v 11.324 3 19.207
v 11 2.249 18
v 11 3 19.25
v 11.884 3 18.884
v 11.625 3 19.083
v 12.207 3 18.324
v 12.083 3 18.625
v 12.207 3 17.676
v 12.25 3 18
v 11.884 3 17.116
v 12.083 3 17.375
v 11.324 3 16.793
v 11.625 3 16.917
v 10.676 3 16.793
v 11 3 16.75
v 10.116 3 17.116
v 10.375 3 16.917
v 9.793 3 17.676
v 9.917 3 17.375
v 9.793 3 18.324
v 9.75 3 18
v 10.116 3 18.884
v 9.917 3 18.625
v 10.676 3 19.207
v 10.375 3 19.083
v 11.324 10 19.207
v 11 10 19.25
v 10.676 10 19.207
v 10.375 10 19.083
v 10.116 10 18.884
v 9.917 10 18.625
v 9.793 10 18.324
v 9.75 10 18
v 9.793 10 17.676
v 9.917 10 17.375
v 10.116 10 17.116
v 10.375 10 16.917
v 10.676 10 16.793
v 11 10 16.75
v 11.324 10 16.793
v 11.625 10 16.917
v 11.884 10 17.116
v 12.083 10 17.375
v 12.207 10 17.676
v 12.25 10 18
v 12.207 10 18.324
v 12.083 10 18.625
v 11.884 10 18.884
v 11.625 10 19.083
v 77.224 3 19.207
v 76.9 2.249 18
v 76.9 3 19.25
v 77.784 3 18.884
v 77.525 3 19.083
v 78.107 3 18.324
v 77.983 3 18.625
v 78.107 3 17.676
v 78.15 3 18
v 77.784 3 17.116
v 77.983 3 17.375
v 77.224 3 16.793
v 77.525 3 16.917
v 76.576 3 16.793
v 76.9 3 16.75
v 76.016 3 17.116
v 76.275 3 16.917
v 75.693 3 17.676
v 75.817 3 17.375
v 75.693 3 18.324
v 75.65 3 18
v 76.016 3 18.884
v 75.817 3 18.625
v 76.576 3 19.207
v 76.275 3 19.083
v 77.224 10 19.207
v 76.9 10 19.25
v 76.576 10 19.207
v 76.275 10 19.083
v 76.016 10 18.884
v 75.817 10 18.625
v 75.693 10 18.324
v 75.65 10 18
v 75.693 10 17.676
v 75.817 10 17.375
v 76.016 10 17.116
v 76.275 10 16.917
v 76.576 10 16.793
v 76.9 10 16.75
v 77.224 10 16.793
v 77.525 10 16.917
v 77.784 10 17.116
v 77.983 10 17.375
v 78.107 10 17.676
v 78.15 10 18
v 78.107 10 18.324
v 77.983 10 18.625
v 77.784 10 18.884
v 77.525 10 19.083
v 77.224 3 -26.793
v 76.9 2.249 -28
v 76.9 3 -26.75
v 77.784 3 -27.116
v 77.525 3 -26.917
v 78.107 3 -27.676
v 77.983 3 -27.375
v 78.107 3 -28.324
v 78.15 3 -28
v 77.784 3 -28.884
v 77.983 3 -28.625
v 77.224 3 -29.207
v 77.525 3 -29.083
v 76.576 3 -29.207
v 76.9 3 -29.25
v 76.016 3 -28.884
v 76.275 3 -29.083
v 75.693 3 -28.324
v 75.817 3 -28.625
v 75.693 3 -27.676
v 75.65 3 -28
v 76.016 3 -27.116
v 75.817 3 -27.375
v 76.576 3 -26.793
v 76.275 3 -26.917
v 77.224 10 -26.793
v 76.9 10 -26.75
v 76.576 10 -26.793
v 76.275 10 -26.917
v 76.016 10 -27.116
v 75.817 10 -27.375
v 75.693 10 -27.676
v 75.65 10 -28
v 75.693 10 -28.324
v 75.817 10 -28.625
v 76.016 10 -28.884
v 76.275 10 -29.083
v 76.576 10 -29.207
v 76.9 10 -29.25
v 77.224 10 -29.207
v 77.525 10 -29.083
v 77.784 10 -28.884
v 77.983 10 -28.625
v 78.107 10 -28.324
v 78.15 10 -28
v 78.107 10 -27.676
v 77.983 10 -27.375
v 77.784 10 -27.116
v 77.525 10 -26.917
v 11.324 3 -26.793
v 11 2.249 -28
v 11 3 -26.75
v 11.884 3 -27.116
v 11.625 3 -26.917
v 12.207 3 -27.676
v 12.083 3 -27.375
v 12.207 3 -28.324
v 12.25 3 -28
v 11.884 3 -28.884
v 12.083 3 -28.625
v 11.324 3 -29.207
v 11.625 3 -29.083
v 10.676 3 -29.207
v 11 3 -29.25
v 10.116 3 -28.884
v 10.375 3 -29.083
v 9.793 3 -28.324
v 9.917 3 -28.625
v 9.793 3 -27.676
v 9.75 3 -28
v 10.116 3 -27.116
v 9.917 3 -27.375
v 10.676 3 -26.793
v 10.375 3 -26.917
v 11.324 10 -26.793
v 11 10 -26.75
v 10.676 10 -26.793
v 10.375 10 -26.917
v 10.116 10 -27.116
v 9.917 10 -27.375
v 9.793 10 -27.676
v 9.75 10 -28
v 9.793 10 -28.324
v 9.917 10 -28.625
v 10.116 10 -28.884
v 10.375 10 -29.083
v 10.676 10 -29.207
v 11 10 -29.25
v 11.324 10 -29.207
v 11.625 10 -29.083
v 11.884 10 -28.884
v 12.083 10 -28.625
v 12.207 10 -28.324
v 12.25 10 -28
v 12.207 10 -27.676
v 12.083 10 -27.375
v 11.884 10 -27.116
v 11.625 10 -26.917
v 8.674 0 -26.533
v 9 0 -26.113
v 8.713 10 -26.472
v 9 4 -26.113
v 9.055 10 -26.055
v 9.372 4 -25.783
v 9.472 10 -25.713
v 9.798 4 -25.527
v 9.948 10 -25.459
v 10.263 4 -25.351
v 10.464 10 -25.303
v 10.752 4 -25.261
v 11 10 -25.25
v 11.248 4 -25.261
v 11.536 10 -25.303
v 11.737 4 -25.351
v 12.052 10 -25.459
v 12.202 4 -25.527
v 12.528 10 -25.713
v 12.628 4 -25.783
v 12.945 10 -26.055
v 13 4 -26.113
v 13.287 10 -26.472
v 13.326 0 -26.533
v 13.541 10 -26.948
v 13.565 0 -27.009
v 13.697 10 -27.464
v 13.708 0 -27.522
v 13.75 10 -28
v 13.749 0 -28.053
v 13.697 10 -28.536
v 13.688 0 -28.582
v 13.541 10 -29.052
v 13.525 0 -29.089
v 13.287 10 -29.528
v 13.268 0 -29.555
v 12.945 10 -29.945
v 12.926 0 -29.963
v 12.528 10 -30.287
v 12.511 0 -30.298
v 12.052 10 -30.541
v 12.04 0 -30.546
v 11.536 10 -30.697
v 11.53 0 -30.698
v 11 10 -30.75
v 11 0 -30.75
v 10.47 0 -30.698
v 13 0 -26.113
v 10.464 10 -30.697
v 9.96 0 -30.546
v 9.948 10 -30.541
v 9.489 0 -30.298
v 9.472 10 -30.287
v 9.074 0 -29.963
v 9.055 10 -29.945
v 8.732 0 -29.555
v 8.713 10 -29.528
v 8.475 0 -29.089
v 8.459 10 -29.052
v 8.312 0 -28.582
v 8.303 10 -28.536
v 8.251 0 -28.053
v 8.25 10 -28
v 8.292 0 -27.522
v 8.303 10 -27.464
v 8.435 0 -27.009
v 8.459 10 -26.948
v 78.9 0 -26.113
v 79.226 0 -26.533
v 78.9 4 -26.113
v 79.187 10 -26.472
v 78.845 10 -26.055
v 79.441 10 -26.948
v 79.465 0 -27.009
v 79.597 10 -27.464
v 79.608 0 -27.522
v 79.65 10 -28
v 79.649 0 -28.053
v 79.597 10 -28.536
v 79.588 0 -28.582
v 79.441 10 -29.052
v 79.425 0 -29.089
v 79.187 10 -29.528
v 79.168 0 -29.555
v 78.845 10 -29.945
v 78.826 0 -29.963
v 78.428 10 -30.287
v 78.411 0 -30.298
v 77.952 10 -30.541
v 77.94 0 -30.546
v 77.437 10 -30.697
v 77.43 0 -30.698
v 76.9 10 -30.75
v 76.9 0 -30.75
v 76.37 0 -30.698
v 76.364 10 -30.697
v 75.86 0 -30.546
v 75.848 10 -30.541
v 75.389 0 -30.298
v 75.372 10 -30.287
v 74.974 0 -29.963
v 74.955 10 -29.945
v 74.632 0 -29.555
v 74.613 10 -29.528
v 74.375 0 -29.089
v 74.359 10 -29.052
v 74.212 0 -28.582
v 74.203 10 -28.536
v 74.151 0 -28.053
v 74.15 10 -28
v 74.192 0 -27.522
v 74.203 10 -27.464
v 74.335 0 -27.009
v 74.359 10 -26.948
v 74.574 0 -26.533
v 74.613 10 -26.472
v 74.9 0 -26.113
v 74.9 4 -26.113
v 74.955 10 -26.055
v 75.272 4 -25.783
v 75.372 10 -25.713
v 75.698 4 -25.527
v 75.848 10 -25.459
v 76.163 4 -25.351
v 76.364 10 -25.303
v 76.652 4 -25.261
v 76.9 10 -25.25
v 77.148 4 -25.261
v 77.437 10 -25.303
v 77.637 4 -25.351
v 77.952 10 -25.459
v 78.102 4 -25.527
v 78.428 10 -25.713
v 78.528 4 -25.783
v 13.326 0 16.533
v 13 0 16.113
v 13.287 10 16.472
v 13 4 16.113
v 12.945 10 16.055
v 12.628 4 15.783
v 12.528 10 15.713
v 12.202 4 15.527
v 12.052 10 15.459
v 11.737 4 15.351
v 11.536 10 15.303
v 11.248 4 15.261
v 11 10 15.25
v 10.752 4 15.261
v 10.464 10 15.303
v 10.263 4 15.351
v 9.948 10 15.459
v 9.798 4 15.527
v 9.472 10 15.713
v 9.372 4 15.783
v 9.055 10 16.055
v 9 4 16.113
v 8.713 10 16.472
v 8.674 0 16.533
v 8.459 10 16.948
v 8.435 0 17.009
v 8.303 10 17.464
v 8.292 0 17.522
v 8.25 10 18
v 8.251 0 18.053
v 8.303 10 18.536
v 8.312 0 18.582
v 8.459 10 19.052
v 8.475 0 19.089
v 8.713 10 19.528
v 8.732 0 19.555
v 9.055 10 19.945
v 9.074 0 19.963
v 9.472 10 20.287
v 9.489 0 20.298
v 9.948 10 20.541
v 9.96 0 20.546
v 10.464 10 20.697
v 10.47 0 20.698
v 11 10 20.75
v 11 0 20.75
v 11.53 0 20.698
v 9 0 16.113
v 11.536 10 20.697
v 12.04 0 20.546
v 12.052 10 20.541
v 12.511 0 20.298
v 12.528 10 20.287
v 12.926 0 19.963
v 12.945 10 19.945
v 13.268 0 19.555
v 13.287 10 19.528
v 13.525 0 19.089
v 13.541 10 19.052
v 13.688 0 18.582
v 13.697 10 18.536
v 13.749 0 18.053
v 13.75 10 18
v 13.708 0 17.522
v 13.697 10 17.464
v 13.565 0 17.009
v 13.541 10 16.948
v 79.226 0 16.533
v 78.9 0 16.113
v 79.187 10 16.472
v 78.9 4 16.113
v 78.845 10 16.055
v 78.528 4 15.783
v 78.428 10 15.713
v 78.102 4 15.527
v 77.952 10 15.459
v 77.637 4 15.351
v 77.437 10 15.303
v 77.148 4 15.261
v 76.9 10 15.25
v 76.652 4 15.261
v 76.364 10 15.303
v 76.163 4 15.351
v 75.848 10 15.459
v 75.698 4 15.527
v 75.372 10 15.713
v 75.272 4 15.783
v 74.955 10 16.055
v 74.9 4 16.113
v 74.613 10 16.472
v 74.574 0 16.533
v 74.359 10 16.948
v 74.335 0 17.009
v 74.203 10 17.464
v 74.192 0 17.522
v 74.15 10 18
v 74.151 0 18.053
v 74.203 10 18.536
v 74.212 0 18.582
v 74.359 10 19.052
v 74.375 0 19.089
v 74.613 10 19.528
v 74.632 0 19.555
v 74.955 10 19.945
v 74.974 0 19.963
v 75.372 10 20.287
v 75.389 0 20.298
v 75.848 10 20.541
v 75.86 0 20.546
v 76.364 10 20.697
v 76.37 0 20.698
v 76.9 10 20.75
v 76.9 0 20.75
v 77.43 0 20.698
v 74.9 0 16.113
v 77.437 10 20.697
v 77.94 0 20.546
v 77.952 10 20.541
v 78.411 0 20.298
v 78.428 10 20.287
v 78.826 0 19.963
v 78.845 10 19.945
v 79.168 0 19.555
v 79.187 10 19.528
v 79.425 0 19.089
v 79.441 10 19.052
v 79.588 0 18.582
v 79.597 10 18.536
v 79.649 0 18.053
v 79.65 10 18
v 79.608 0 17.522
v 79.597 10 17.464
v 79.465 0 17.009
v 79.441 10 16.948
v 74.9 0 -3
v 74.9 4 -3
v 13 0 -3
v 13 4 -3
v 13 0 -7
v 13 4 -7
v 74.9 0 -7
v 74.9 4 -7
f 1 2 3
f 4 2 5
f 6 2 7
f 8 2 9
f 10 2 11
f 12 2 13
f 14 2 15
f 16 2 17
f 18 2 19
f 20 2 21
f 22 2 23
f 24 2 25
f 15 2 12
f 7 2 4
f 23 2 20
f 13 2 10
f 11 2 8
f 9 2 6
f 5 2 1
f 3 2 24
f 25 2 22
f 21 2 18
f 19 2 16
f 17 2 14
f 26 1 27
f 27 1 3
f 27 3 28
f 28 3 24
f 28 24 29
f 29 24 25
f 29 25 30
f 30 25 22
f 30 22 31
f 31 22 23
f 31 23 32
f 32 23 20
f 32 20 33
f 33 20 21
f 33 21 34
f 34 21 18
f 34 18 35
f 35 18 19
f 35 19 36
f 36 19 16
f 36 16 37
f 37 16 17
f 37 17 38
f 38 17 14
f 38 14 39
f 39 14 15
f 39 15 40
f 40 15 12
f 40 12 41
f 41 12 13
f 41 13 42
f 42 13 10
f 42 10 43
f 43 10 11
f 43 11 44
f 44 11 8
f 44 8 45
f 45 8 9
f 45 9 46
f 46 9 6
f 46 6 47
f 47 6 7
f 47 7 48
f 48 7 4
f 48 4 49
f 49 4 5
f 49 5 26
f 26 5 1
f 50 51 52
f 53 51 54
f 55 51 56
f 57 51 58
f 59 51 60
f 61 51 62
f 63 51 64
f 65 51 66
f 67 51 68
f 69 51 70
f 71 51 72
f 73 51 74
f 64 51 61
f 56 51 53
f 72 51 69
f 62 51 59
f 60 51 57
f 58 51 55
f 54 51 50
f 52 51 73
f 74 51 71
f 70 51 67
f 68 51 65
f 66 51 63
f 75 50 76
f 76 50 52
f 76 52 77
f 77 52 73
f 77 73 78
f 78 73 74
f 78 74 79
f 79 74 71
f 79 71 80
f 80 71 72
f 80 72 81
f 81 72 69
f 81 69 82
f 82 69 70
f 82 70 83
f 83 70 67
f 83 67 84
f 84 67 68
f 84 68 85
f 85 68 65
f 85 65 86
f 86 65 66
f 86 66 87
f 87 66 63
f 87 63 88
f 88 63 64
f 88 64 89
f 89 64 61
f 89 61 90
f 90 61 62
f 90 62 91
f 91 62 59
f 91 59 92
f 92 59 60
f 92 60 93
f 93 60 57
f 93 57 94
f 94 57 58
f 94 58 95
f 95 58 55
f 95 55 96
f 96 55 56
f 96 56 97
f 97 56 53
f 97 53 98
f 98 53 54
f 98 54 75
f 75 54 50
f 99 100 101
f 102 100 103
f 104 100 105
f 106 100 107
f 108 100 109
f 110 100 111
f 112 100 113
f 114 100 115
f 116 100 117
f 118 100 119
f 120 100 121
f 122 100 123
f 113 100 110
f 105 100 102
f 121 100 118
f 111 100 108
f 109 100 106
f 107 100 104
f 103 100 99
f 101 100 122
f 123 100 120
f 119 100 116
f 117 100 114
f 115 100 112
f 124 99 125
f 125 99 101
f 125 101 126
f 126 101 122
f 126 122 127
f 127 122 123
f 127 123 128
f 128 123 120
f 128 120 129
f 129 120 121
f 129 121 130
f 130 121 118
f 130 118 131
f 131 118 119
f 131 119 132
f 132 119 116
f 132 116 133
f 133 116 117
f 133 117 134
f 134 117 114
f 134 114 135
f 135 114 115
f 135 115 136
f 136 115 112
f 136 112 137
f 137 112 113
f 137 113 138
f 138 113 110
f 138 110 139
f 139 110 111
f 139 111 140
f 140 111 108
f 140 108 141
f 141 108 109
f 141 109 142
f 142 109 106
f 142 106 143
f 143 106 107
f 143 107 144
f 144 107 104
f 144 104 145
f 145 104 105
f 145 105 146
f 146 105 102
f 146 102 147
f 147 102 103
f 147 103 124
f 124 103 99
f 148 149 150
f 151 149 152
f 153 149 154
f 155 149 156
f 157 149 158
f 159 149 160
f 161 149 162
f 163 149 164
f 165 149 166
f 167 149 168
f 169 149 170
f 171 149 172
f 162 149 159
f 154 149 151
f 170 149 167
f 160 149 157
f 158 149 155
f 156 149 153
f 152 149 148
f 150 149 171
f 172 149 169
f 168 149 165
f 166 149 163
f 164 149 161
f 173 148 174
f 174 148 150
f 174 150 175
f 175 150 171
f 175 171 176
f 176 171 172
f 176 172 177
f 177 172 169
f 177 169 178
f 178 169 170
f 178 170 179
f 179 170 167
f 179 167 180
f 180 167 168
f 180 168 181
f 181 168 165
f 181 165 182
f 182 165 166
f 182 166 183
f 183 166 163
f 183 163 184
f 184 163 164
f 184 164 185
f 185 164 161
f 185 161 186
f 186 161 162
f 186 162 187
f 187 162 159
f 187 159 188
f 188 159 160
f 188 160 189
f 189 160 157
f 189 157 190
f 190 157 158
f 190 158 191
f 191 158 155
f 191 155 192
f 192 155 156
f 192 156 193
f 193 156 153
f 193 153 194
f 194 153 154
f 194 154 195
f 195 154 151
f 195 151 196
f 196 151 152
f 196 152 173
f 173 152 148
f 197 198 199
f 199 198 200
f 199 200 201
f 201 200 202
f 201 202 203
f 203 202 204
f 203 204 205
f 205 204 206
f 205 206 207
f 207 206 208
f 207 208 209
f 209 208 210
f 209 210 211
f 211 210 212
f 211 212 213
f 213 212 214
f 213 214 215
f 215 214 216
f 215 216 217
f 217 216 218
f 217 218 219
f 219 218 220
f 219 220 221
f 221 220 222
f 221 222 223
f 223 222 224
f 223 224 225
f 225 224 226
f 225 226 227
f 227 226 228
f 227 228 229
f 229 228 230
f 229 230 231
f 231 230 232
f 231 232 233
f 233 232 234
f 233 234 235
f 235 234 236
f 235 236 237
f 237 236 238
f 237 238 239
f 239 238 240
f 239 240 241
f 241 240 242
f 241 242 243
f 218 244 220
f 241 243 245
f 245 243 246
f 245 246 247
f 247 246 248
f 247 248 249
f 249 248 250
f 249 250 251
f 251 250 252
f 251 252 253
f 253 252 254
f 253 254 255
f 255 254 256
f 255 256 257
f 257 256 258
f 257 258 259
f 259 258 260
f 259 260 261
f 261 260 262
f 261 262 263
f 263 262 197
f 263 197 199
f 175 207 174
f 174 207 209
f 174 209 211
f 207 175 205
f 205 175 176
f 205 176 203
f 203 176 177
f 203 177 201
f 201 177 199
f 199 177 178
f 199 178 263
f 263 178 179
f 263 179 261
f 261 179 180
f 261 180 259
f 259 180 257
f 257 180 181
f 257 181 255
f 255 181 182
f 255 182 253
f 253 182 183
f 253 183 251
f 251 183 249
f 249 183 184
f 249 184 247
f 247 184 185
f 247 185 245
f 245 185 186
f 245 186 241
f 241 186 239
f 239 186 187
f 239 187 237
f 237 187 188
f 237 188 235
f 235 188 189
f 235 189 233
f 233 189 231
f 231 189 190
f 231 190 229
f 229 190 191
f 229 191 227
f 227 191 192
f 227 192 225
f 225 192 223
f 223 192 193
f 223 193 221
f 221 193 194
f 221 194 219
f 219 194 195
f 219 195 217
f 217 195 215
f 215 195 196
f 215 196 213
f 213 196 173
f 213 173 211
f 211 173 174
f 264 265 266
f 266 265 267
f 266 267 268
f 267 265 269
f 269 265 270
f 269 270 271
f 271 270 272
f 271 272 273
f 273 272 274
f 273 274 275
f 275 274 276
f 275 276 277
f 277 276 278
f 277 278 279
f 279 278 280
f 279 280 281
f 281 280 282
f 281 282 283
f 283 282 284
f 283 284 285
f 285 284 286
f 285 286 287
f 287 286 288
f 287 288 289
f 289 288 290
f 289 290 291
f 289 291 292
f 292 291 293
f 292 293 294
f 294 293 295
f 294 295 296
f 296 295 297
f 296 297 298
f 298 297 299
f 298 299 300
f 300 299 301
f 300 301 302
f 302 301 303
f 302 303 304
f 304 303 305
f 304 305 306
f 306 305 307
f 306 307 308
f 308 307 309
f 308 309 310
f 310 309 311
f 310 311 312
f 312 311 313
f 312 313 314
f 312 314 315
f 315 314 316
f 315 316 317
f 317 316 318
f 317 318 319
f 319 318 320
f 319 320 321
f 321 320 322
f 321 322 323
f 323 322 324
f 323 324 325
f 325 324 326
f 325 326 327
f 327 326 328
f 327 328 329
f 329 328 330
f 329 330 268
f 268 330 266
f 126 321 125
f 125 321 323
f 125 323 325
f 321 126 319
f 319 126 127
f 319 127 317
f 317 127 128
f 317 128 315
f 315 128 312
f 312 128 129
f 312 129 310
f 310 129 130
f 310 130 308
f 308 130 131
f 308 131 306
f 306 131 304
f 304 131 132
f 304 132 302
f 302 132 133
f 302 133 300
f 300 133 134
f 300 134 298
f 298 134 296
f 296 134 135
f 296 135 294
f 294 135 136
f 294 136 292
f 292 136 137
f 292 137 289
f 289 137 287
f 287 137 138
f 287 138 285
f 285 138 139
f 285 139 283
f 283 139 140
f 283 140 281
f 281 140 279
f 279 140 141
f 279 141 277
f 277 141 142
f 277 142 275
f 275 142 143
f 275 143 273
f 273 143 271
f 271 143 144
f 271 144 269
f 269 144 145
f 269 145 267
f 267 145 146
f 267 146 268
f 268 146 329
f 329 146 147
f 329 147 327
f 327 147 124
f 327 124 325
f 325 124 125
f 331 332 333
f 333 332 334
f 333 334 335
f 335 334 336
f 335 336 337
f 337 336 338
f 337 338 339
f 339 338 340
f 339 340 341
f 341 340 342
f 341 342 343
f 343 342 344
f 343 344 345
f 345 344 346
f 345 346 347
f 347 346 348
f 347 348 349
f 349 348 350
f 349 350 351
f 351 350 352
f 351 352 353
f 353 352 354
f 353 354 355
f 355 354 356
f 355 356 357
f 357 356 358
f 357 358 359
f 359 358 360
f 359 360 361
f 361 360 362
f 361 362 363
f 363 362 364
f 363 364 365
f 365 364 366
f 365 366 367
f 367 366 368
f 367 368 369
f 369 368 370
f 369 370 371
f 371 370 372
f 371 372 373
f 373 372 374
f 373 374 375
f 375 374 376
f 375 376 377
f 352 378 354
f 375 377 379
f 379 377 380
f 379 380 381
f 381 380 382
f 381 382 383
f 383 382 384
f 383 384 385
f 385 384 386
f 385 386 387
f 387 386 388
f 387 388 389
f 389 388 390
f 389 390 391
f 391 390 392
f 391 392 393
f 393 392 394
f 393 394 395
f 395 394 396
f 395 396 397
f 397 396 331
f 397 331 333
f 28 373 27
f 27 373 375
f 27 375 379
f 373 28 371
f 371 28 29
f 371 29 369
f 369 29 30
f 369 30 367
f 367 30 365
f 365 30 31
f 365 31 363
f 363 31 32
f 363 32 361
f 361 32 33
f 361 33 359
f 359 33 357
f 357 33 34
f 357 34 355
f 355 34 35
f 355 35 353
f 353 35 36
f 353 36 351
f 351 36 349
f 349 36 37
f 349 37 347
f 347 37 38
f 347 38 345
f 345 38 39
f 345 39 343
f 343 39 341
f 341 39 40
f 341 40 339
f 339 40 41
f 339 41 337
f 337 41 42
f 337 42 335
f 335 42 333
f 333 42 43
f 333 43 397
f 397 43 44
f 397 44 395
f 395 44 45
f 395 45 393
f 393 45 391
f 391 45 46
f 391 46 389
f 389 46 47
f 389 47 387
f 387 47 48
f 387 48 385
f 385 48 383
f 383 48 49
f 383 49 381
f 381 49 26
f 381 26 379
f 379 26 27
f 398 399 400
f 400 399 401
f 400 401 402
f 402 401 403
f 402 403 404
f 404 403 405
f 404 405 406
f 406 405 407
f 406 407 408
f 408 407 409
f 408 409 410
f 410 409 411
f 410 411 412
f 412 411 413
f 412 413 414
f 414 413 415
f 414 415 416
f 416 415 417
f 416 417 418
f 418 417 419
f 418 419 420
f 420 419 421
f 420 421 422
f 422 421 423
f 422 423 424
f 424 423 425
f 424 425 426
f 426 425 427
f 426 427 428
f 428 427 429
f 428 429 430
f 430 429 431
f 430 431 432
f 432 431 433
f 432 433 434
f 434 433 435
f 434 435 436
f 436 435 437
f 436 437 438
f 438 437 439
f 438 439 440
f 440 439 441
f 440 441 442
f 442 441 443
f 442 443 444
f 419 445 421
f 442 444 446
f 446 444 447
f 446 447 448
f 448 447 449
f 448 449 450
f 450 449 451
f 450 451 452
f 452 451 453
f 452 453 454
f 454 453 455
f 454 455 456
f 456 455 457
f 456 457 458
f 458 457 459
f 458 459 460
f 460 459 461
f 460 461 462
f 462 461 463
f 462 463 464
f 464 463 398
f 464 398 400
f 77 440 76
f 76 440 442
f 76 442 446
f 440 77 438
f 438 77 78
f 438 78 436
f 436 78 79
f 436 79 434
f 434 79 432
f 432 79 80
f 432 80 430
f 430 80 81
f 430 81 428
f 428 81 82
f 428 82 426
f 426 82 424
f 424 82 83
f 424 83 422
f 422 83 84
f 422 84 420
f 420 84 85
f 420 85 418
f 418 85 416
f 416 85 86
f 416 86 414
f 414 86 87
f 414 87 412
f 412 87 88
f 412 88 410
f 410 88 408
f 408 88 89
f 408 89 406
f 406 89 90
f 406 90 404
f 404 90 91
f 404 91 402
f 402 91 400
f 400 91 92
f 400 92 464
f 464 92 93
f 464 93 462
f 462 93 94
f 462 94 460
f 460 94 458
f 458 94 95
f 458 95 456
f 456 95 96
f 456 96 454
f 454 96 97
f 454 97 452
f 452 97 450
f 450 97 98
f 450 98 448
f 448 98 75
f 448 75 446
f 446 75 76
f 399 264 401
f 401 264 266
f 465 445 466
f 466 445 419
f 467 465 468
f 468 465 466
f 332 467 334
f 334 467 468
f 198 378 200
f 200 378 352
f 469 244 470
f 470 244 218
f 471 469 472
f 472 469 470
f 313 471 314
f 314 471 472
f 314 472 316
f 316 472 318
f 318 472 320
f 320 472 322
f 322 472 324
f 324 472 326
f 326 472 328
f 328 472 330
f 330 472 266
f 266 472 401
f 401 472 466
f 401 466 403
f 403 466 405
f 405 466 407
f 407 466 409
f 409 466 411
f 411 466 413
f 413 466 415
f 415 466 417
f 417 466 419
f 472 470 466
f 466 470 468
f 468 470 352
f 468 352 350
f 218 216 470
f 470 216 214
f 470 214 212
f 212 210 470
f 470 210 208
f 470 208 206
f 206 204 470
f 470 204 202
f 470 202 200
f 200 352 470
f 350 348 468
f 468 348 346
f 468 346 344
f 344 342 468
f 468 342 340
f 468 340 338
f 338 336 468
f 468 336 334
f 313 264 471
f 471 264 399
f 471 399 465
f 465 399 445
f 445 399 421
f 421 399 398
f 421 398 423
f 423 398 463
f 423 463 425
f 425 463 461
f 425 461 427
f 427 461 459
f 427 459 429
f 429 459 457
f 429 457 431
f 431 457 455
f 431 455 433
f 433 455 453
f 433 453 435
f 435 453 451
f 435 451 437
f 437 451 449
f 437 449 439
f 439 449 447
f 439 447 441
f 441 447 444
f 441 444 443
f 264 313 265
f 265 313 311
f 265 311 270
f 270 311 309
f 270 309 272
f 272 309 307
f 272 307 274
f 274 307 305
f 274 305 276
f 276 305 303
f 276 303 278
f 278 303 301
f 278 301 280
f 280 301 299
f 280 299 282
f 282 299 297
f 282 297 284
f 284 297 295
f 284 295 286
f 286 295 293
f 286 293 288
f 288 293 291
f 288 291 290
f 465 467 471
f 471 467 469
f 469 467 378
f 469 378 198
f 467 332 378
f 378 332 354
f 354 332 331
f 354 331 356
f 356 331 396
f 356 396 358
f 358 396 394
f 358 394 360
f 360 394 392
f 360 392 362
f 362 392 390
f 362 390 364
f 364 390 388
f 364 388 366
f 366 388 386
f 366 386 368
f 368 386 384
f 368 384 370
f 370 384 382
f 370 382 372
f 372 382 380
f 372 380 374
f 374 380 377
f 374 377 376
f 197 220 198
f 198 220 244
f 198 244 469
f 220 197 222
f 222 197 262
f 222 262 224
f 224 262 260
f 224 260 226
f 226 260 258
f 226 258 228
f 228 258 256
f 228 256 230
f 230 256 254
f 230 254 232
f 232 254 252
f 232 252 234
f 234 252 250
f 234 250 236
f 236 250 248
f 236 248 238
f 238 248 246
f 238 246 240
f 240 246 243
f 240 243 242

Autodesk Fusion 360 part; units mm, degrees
sketch "Schizzo9" plane through (0, 0, 0) normal (0, 1, 0) x (1, 0, 0)
  line L0 (11, 28) -> (76.9, 28)
  line L1 (76.9, 28) -> (76.9, -18)
  line L2 (76.9, -18) -> (11, -18)
  line L3 (11, -18) -> (11, 28)
  circle A0 centre (11, 28) radius 2.75
  circle A1 centre (76.9, 28) radius 2.75
  circle A2 centre (11, -18) radius 2.75
  circle A3 centre (76.9, -18) radius 2.75
  line L4 (11, 28) -> (9, 28)
  line L5 (11, 28) -> (13, 28)
  line L6 (9, 28) -> (9, -18)
  line L7 (13, 28) -> (13, -18)
  line L8 (76.9, 28) -> (74.9, 28)
  line L9 (76.9, 28) -> (78.9, 28)
  line L10 (78.9, 28) -> (78.9, -18)
  line L11 (74.9, 28) -> (74.9, -18)
  line L12 (78.9, 5) -> (78.9, 7)
  line L13 (78.9, 5) -> (78.9, 3)
  line L14 (78.9, 7) -> (9, 7)
  line L15 (78.9, 3) -> (9, 3)
  dimension "d99" = 65.9
  dimension "d100" = 46
  dimension "d101" = 5.5
  dimension "d102" = 5.5
  dimension "d103" = 5.5
  dimension "d104" = 5.5
  dimension "d105" = 2
  dimension "d106" = 2
  dimension "d107" = 2
  dimension "d108" = 2
  dimension "d109" = 2
  dimension "d110" = 2
extrude "Estrusione16" add sketch "Schizzo9" along normal blind 4 contours L3 A0 L7 L14 | L3 A0 L6 L14 | L3 L7 L14 L15 | L3 L6 L14 L15 | L7 L11 L14 L15 | L3 A2 L7 L15 | L3 A2 L6 L15 | L1 A1 L11 L14 | L1 L11 L14 L15 | L1 A1 L10 L14 | L1 A3 L11 L15 | L1 L10 L12 L13 L14 L15 | L1 A3 L10 L15
extrude "Estrusione17" add sketch "Schizzo9" along normal blind 10 contours L0 A0 L4 L5 L6 | L0 L3 A0 L5 L7 | L3 A0 L4 L6 | L0 A0 L7 | L0 A1 L8 L9 L10 | L0 A1 L11 | L0 L1 A1 L8 L11 | L2 L3 A2 L7 | L2 L3 A2 | L1 A1 L9 L10 | L2 A2 L7 | L2 A3 L11 | L1 L2 A3 L11 | L1 L2 A3
hole "Foratura9" at (11, 10, -28) direction (0, -1, 0) diameter 2.5 depth 7 tip angle 118
hole "Foratura10" at (76.9, 10, -28) direction (0, -1, 0) diameter 2.5 depth 7 tip angle 118
hole "Foratura11" at (76.9, 10, 18) direction (0, -1, 0) diameter 2.5 depth 7 tip angle 118
hole "Foratura12" at (11, 10, 18) direction (0, -1, 0) diameter 2.5 depth 7 tip angle 118
